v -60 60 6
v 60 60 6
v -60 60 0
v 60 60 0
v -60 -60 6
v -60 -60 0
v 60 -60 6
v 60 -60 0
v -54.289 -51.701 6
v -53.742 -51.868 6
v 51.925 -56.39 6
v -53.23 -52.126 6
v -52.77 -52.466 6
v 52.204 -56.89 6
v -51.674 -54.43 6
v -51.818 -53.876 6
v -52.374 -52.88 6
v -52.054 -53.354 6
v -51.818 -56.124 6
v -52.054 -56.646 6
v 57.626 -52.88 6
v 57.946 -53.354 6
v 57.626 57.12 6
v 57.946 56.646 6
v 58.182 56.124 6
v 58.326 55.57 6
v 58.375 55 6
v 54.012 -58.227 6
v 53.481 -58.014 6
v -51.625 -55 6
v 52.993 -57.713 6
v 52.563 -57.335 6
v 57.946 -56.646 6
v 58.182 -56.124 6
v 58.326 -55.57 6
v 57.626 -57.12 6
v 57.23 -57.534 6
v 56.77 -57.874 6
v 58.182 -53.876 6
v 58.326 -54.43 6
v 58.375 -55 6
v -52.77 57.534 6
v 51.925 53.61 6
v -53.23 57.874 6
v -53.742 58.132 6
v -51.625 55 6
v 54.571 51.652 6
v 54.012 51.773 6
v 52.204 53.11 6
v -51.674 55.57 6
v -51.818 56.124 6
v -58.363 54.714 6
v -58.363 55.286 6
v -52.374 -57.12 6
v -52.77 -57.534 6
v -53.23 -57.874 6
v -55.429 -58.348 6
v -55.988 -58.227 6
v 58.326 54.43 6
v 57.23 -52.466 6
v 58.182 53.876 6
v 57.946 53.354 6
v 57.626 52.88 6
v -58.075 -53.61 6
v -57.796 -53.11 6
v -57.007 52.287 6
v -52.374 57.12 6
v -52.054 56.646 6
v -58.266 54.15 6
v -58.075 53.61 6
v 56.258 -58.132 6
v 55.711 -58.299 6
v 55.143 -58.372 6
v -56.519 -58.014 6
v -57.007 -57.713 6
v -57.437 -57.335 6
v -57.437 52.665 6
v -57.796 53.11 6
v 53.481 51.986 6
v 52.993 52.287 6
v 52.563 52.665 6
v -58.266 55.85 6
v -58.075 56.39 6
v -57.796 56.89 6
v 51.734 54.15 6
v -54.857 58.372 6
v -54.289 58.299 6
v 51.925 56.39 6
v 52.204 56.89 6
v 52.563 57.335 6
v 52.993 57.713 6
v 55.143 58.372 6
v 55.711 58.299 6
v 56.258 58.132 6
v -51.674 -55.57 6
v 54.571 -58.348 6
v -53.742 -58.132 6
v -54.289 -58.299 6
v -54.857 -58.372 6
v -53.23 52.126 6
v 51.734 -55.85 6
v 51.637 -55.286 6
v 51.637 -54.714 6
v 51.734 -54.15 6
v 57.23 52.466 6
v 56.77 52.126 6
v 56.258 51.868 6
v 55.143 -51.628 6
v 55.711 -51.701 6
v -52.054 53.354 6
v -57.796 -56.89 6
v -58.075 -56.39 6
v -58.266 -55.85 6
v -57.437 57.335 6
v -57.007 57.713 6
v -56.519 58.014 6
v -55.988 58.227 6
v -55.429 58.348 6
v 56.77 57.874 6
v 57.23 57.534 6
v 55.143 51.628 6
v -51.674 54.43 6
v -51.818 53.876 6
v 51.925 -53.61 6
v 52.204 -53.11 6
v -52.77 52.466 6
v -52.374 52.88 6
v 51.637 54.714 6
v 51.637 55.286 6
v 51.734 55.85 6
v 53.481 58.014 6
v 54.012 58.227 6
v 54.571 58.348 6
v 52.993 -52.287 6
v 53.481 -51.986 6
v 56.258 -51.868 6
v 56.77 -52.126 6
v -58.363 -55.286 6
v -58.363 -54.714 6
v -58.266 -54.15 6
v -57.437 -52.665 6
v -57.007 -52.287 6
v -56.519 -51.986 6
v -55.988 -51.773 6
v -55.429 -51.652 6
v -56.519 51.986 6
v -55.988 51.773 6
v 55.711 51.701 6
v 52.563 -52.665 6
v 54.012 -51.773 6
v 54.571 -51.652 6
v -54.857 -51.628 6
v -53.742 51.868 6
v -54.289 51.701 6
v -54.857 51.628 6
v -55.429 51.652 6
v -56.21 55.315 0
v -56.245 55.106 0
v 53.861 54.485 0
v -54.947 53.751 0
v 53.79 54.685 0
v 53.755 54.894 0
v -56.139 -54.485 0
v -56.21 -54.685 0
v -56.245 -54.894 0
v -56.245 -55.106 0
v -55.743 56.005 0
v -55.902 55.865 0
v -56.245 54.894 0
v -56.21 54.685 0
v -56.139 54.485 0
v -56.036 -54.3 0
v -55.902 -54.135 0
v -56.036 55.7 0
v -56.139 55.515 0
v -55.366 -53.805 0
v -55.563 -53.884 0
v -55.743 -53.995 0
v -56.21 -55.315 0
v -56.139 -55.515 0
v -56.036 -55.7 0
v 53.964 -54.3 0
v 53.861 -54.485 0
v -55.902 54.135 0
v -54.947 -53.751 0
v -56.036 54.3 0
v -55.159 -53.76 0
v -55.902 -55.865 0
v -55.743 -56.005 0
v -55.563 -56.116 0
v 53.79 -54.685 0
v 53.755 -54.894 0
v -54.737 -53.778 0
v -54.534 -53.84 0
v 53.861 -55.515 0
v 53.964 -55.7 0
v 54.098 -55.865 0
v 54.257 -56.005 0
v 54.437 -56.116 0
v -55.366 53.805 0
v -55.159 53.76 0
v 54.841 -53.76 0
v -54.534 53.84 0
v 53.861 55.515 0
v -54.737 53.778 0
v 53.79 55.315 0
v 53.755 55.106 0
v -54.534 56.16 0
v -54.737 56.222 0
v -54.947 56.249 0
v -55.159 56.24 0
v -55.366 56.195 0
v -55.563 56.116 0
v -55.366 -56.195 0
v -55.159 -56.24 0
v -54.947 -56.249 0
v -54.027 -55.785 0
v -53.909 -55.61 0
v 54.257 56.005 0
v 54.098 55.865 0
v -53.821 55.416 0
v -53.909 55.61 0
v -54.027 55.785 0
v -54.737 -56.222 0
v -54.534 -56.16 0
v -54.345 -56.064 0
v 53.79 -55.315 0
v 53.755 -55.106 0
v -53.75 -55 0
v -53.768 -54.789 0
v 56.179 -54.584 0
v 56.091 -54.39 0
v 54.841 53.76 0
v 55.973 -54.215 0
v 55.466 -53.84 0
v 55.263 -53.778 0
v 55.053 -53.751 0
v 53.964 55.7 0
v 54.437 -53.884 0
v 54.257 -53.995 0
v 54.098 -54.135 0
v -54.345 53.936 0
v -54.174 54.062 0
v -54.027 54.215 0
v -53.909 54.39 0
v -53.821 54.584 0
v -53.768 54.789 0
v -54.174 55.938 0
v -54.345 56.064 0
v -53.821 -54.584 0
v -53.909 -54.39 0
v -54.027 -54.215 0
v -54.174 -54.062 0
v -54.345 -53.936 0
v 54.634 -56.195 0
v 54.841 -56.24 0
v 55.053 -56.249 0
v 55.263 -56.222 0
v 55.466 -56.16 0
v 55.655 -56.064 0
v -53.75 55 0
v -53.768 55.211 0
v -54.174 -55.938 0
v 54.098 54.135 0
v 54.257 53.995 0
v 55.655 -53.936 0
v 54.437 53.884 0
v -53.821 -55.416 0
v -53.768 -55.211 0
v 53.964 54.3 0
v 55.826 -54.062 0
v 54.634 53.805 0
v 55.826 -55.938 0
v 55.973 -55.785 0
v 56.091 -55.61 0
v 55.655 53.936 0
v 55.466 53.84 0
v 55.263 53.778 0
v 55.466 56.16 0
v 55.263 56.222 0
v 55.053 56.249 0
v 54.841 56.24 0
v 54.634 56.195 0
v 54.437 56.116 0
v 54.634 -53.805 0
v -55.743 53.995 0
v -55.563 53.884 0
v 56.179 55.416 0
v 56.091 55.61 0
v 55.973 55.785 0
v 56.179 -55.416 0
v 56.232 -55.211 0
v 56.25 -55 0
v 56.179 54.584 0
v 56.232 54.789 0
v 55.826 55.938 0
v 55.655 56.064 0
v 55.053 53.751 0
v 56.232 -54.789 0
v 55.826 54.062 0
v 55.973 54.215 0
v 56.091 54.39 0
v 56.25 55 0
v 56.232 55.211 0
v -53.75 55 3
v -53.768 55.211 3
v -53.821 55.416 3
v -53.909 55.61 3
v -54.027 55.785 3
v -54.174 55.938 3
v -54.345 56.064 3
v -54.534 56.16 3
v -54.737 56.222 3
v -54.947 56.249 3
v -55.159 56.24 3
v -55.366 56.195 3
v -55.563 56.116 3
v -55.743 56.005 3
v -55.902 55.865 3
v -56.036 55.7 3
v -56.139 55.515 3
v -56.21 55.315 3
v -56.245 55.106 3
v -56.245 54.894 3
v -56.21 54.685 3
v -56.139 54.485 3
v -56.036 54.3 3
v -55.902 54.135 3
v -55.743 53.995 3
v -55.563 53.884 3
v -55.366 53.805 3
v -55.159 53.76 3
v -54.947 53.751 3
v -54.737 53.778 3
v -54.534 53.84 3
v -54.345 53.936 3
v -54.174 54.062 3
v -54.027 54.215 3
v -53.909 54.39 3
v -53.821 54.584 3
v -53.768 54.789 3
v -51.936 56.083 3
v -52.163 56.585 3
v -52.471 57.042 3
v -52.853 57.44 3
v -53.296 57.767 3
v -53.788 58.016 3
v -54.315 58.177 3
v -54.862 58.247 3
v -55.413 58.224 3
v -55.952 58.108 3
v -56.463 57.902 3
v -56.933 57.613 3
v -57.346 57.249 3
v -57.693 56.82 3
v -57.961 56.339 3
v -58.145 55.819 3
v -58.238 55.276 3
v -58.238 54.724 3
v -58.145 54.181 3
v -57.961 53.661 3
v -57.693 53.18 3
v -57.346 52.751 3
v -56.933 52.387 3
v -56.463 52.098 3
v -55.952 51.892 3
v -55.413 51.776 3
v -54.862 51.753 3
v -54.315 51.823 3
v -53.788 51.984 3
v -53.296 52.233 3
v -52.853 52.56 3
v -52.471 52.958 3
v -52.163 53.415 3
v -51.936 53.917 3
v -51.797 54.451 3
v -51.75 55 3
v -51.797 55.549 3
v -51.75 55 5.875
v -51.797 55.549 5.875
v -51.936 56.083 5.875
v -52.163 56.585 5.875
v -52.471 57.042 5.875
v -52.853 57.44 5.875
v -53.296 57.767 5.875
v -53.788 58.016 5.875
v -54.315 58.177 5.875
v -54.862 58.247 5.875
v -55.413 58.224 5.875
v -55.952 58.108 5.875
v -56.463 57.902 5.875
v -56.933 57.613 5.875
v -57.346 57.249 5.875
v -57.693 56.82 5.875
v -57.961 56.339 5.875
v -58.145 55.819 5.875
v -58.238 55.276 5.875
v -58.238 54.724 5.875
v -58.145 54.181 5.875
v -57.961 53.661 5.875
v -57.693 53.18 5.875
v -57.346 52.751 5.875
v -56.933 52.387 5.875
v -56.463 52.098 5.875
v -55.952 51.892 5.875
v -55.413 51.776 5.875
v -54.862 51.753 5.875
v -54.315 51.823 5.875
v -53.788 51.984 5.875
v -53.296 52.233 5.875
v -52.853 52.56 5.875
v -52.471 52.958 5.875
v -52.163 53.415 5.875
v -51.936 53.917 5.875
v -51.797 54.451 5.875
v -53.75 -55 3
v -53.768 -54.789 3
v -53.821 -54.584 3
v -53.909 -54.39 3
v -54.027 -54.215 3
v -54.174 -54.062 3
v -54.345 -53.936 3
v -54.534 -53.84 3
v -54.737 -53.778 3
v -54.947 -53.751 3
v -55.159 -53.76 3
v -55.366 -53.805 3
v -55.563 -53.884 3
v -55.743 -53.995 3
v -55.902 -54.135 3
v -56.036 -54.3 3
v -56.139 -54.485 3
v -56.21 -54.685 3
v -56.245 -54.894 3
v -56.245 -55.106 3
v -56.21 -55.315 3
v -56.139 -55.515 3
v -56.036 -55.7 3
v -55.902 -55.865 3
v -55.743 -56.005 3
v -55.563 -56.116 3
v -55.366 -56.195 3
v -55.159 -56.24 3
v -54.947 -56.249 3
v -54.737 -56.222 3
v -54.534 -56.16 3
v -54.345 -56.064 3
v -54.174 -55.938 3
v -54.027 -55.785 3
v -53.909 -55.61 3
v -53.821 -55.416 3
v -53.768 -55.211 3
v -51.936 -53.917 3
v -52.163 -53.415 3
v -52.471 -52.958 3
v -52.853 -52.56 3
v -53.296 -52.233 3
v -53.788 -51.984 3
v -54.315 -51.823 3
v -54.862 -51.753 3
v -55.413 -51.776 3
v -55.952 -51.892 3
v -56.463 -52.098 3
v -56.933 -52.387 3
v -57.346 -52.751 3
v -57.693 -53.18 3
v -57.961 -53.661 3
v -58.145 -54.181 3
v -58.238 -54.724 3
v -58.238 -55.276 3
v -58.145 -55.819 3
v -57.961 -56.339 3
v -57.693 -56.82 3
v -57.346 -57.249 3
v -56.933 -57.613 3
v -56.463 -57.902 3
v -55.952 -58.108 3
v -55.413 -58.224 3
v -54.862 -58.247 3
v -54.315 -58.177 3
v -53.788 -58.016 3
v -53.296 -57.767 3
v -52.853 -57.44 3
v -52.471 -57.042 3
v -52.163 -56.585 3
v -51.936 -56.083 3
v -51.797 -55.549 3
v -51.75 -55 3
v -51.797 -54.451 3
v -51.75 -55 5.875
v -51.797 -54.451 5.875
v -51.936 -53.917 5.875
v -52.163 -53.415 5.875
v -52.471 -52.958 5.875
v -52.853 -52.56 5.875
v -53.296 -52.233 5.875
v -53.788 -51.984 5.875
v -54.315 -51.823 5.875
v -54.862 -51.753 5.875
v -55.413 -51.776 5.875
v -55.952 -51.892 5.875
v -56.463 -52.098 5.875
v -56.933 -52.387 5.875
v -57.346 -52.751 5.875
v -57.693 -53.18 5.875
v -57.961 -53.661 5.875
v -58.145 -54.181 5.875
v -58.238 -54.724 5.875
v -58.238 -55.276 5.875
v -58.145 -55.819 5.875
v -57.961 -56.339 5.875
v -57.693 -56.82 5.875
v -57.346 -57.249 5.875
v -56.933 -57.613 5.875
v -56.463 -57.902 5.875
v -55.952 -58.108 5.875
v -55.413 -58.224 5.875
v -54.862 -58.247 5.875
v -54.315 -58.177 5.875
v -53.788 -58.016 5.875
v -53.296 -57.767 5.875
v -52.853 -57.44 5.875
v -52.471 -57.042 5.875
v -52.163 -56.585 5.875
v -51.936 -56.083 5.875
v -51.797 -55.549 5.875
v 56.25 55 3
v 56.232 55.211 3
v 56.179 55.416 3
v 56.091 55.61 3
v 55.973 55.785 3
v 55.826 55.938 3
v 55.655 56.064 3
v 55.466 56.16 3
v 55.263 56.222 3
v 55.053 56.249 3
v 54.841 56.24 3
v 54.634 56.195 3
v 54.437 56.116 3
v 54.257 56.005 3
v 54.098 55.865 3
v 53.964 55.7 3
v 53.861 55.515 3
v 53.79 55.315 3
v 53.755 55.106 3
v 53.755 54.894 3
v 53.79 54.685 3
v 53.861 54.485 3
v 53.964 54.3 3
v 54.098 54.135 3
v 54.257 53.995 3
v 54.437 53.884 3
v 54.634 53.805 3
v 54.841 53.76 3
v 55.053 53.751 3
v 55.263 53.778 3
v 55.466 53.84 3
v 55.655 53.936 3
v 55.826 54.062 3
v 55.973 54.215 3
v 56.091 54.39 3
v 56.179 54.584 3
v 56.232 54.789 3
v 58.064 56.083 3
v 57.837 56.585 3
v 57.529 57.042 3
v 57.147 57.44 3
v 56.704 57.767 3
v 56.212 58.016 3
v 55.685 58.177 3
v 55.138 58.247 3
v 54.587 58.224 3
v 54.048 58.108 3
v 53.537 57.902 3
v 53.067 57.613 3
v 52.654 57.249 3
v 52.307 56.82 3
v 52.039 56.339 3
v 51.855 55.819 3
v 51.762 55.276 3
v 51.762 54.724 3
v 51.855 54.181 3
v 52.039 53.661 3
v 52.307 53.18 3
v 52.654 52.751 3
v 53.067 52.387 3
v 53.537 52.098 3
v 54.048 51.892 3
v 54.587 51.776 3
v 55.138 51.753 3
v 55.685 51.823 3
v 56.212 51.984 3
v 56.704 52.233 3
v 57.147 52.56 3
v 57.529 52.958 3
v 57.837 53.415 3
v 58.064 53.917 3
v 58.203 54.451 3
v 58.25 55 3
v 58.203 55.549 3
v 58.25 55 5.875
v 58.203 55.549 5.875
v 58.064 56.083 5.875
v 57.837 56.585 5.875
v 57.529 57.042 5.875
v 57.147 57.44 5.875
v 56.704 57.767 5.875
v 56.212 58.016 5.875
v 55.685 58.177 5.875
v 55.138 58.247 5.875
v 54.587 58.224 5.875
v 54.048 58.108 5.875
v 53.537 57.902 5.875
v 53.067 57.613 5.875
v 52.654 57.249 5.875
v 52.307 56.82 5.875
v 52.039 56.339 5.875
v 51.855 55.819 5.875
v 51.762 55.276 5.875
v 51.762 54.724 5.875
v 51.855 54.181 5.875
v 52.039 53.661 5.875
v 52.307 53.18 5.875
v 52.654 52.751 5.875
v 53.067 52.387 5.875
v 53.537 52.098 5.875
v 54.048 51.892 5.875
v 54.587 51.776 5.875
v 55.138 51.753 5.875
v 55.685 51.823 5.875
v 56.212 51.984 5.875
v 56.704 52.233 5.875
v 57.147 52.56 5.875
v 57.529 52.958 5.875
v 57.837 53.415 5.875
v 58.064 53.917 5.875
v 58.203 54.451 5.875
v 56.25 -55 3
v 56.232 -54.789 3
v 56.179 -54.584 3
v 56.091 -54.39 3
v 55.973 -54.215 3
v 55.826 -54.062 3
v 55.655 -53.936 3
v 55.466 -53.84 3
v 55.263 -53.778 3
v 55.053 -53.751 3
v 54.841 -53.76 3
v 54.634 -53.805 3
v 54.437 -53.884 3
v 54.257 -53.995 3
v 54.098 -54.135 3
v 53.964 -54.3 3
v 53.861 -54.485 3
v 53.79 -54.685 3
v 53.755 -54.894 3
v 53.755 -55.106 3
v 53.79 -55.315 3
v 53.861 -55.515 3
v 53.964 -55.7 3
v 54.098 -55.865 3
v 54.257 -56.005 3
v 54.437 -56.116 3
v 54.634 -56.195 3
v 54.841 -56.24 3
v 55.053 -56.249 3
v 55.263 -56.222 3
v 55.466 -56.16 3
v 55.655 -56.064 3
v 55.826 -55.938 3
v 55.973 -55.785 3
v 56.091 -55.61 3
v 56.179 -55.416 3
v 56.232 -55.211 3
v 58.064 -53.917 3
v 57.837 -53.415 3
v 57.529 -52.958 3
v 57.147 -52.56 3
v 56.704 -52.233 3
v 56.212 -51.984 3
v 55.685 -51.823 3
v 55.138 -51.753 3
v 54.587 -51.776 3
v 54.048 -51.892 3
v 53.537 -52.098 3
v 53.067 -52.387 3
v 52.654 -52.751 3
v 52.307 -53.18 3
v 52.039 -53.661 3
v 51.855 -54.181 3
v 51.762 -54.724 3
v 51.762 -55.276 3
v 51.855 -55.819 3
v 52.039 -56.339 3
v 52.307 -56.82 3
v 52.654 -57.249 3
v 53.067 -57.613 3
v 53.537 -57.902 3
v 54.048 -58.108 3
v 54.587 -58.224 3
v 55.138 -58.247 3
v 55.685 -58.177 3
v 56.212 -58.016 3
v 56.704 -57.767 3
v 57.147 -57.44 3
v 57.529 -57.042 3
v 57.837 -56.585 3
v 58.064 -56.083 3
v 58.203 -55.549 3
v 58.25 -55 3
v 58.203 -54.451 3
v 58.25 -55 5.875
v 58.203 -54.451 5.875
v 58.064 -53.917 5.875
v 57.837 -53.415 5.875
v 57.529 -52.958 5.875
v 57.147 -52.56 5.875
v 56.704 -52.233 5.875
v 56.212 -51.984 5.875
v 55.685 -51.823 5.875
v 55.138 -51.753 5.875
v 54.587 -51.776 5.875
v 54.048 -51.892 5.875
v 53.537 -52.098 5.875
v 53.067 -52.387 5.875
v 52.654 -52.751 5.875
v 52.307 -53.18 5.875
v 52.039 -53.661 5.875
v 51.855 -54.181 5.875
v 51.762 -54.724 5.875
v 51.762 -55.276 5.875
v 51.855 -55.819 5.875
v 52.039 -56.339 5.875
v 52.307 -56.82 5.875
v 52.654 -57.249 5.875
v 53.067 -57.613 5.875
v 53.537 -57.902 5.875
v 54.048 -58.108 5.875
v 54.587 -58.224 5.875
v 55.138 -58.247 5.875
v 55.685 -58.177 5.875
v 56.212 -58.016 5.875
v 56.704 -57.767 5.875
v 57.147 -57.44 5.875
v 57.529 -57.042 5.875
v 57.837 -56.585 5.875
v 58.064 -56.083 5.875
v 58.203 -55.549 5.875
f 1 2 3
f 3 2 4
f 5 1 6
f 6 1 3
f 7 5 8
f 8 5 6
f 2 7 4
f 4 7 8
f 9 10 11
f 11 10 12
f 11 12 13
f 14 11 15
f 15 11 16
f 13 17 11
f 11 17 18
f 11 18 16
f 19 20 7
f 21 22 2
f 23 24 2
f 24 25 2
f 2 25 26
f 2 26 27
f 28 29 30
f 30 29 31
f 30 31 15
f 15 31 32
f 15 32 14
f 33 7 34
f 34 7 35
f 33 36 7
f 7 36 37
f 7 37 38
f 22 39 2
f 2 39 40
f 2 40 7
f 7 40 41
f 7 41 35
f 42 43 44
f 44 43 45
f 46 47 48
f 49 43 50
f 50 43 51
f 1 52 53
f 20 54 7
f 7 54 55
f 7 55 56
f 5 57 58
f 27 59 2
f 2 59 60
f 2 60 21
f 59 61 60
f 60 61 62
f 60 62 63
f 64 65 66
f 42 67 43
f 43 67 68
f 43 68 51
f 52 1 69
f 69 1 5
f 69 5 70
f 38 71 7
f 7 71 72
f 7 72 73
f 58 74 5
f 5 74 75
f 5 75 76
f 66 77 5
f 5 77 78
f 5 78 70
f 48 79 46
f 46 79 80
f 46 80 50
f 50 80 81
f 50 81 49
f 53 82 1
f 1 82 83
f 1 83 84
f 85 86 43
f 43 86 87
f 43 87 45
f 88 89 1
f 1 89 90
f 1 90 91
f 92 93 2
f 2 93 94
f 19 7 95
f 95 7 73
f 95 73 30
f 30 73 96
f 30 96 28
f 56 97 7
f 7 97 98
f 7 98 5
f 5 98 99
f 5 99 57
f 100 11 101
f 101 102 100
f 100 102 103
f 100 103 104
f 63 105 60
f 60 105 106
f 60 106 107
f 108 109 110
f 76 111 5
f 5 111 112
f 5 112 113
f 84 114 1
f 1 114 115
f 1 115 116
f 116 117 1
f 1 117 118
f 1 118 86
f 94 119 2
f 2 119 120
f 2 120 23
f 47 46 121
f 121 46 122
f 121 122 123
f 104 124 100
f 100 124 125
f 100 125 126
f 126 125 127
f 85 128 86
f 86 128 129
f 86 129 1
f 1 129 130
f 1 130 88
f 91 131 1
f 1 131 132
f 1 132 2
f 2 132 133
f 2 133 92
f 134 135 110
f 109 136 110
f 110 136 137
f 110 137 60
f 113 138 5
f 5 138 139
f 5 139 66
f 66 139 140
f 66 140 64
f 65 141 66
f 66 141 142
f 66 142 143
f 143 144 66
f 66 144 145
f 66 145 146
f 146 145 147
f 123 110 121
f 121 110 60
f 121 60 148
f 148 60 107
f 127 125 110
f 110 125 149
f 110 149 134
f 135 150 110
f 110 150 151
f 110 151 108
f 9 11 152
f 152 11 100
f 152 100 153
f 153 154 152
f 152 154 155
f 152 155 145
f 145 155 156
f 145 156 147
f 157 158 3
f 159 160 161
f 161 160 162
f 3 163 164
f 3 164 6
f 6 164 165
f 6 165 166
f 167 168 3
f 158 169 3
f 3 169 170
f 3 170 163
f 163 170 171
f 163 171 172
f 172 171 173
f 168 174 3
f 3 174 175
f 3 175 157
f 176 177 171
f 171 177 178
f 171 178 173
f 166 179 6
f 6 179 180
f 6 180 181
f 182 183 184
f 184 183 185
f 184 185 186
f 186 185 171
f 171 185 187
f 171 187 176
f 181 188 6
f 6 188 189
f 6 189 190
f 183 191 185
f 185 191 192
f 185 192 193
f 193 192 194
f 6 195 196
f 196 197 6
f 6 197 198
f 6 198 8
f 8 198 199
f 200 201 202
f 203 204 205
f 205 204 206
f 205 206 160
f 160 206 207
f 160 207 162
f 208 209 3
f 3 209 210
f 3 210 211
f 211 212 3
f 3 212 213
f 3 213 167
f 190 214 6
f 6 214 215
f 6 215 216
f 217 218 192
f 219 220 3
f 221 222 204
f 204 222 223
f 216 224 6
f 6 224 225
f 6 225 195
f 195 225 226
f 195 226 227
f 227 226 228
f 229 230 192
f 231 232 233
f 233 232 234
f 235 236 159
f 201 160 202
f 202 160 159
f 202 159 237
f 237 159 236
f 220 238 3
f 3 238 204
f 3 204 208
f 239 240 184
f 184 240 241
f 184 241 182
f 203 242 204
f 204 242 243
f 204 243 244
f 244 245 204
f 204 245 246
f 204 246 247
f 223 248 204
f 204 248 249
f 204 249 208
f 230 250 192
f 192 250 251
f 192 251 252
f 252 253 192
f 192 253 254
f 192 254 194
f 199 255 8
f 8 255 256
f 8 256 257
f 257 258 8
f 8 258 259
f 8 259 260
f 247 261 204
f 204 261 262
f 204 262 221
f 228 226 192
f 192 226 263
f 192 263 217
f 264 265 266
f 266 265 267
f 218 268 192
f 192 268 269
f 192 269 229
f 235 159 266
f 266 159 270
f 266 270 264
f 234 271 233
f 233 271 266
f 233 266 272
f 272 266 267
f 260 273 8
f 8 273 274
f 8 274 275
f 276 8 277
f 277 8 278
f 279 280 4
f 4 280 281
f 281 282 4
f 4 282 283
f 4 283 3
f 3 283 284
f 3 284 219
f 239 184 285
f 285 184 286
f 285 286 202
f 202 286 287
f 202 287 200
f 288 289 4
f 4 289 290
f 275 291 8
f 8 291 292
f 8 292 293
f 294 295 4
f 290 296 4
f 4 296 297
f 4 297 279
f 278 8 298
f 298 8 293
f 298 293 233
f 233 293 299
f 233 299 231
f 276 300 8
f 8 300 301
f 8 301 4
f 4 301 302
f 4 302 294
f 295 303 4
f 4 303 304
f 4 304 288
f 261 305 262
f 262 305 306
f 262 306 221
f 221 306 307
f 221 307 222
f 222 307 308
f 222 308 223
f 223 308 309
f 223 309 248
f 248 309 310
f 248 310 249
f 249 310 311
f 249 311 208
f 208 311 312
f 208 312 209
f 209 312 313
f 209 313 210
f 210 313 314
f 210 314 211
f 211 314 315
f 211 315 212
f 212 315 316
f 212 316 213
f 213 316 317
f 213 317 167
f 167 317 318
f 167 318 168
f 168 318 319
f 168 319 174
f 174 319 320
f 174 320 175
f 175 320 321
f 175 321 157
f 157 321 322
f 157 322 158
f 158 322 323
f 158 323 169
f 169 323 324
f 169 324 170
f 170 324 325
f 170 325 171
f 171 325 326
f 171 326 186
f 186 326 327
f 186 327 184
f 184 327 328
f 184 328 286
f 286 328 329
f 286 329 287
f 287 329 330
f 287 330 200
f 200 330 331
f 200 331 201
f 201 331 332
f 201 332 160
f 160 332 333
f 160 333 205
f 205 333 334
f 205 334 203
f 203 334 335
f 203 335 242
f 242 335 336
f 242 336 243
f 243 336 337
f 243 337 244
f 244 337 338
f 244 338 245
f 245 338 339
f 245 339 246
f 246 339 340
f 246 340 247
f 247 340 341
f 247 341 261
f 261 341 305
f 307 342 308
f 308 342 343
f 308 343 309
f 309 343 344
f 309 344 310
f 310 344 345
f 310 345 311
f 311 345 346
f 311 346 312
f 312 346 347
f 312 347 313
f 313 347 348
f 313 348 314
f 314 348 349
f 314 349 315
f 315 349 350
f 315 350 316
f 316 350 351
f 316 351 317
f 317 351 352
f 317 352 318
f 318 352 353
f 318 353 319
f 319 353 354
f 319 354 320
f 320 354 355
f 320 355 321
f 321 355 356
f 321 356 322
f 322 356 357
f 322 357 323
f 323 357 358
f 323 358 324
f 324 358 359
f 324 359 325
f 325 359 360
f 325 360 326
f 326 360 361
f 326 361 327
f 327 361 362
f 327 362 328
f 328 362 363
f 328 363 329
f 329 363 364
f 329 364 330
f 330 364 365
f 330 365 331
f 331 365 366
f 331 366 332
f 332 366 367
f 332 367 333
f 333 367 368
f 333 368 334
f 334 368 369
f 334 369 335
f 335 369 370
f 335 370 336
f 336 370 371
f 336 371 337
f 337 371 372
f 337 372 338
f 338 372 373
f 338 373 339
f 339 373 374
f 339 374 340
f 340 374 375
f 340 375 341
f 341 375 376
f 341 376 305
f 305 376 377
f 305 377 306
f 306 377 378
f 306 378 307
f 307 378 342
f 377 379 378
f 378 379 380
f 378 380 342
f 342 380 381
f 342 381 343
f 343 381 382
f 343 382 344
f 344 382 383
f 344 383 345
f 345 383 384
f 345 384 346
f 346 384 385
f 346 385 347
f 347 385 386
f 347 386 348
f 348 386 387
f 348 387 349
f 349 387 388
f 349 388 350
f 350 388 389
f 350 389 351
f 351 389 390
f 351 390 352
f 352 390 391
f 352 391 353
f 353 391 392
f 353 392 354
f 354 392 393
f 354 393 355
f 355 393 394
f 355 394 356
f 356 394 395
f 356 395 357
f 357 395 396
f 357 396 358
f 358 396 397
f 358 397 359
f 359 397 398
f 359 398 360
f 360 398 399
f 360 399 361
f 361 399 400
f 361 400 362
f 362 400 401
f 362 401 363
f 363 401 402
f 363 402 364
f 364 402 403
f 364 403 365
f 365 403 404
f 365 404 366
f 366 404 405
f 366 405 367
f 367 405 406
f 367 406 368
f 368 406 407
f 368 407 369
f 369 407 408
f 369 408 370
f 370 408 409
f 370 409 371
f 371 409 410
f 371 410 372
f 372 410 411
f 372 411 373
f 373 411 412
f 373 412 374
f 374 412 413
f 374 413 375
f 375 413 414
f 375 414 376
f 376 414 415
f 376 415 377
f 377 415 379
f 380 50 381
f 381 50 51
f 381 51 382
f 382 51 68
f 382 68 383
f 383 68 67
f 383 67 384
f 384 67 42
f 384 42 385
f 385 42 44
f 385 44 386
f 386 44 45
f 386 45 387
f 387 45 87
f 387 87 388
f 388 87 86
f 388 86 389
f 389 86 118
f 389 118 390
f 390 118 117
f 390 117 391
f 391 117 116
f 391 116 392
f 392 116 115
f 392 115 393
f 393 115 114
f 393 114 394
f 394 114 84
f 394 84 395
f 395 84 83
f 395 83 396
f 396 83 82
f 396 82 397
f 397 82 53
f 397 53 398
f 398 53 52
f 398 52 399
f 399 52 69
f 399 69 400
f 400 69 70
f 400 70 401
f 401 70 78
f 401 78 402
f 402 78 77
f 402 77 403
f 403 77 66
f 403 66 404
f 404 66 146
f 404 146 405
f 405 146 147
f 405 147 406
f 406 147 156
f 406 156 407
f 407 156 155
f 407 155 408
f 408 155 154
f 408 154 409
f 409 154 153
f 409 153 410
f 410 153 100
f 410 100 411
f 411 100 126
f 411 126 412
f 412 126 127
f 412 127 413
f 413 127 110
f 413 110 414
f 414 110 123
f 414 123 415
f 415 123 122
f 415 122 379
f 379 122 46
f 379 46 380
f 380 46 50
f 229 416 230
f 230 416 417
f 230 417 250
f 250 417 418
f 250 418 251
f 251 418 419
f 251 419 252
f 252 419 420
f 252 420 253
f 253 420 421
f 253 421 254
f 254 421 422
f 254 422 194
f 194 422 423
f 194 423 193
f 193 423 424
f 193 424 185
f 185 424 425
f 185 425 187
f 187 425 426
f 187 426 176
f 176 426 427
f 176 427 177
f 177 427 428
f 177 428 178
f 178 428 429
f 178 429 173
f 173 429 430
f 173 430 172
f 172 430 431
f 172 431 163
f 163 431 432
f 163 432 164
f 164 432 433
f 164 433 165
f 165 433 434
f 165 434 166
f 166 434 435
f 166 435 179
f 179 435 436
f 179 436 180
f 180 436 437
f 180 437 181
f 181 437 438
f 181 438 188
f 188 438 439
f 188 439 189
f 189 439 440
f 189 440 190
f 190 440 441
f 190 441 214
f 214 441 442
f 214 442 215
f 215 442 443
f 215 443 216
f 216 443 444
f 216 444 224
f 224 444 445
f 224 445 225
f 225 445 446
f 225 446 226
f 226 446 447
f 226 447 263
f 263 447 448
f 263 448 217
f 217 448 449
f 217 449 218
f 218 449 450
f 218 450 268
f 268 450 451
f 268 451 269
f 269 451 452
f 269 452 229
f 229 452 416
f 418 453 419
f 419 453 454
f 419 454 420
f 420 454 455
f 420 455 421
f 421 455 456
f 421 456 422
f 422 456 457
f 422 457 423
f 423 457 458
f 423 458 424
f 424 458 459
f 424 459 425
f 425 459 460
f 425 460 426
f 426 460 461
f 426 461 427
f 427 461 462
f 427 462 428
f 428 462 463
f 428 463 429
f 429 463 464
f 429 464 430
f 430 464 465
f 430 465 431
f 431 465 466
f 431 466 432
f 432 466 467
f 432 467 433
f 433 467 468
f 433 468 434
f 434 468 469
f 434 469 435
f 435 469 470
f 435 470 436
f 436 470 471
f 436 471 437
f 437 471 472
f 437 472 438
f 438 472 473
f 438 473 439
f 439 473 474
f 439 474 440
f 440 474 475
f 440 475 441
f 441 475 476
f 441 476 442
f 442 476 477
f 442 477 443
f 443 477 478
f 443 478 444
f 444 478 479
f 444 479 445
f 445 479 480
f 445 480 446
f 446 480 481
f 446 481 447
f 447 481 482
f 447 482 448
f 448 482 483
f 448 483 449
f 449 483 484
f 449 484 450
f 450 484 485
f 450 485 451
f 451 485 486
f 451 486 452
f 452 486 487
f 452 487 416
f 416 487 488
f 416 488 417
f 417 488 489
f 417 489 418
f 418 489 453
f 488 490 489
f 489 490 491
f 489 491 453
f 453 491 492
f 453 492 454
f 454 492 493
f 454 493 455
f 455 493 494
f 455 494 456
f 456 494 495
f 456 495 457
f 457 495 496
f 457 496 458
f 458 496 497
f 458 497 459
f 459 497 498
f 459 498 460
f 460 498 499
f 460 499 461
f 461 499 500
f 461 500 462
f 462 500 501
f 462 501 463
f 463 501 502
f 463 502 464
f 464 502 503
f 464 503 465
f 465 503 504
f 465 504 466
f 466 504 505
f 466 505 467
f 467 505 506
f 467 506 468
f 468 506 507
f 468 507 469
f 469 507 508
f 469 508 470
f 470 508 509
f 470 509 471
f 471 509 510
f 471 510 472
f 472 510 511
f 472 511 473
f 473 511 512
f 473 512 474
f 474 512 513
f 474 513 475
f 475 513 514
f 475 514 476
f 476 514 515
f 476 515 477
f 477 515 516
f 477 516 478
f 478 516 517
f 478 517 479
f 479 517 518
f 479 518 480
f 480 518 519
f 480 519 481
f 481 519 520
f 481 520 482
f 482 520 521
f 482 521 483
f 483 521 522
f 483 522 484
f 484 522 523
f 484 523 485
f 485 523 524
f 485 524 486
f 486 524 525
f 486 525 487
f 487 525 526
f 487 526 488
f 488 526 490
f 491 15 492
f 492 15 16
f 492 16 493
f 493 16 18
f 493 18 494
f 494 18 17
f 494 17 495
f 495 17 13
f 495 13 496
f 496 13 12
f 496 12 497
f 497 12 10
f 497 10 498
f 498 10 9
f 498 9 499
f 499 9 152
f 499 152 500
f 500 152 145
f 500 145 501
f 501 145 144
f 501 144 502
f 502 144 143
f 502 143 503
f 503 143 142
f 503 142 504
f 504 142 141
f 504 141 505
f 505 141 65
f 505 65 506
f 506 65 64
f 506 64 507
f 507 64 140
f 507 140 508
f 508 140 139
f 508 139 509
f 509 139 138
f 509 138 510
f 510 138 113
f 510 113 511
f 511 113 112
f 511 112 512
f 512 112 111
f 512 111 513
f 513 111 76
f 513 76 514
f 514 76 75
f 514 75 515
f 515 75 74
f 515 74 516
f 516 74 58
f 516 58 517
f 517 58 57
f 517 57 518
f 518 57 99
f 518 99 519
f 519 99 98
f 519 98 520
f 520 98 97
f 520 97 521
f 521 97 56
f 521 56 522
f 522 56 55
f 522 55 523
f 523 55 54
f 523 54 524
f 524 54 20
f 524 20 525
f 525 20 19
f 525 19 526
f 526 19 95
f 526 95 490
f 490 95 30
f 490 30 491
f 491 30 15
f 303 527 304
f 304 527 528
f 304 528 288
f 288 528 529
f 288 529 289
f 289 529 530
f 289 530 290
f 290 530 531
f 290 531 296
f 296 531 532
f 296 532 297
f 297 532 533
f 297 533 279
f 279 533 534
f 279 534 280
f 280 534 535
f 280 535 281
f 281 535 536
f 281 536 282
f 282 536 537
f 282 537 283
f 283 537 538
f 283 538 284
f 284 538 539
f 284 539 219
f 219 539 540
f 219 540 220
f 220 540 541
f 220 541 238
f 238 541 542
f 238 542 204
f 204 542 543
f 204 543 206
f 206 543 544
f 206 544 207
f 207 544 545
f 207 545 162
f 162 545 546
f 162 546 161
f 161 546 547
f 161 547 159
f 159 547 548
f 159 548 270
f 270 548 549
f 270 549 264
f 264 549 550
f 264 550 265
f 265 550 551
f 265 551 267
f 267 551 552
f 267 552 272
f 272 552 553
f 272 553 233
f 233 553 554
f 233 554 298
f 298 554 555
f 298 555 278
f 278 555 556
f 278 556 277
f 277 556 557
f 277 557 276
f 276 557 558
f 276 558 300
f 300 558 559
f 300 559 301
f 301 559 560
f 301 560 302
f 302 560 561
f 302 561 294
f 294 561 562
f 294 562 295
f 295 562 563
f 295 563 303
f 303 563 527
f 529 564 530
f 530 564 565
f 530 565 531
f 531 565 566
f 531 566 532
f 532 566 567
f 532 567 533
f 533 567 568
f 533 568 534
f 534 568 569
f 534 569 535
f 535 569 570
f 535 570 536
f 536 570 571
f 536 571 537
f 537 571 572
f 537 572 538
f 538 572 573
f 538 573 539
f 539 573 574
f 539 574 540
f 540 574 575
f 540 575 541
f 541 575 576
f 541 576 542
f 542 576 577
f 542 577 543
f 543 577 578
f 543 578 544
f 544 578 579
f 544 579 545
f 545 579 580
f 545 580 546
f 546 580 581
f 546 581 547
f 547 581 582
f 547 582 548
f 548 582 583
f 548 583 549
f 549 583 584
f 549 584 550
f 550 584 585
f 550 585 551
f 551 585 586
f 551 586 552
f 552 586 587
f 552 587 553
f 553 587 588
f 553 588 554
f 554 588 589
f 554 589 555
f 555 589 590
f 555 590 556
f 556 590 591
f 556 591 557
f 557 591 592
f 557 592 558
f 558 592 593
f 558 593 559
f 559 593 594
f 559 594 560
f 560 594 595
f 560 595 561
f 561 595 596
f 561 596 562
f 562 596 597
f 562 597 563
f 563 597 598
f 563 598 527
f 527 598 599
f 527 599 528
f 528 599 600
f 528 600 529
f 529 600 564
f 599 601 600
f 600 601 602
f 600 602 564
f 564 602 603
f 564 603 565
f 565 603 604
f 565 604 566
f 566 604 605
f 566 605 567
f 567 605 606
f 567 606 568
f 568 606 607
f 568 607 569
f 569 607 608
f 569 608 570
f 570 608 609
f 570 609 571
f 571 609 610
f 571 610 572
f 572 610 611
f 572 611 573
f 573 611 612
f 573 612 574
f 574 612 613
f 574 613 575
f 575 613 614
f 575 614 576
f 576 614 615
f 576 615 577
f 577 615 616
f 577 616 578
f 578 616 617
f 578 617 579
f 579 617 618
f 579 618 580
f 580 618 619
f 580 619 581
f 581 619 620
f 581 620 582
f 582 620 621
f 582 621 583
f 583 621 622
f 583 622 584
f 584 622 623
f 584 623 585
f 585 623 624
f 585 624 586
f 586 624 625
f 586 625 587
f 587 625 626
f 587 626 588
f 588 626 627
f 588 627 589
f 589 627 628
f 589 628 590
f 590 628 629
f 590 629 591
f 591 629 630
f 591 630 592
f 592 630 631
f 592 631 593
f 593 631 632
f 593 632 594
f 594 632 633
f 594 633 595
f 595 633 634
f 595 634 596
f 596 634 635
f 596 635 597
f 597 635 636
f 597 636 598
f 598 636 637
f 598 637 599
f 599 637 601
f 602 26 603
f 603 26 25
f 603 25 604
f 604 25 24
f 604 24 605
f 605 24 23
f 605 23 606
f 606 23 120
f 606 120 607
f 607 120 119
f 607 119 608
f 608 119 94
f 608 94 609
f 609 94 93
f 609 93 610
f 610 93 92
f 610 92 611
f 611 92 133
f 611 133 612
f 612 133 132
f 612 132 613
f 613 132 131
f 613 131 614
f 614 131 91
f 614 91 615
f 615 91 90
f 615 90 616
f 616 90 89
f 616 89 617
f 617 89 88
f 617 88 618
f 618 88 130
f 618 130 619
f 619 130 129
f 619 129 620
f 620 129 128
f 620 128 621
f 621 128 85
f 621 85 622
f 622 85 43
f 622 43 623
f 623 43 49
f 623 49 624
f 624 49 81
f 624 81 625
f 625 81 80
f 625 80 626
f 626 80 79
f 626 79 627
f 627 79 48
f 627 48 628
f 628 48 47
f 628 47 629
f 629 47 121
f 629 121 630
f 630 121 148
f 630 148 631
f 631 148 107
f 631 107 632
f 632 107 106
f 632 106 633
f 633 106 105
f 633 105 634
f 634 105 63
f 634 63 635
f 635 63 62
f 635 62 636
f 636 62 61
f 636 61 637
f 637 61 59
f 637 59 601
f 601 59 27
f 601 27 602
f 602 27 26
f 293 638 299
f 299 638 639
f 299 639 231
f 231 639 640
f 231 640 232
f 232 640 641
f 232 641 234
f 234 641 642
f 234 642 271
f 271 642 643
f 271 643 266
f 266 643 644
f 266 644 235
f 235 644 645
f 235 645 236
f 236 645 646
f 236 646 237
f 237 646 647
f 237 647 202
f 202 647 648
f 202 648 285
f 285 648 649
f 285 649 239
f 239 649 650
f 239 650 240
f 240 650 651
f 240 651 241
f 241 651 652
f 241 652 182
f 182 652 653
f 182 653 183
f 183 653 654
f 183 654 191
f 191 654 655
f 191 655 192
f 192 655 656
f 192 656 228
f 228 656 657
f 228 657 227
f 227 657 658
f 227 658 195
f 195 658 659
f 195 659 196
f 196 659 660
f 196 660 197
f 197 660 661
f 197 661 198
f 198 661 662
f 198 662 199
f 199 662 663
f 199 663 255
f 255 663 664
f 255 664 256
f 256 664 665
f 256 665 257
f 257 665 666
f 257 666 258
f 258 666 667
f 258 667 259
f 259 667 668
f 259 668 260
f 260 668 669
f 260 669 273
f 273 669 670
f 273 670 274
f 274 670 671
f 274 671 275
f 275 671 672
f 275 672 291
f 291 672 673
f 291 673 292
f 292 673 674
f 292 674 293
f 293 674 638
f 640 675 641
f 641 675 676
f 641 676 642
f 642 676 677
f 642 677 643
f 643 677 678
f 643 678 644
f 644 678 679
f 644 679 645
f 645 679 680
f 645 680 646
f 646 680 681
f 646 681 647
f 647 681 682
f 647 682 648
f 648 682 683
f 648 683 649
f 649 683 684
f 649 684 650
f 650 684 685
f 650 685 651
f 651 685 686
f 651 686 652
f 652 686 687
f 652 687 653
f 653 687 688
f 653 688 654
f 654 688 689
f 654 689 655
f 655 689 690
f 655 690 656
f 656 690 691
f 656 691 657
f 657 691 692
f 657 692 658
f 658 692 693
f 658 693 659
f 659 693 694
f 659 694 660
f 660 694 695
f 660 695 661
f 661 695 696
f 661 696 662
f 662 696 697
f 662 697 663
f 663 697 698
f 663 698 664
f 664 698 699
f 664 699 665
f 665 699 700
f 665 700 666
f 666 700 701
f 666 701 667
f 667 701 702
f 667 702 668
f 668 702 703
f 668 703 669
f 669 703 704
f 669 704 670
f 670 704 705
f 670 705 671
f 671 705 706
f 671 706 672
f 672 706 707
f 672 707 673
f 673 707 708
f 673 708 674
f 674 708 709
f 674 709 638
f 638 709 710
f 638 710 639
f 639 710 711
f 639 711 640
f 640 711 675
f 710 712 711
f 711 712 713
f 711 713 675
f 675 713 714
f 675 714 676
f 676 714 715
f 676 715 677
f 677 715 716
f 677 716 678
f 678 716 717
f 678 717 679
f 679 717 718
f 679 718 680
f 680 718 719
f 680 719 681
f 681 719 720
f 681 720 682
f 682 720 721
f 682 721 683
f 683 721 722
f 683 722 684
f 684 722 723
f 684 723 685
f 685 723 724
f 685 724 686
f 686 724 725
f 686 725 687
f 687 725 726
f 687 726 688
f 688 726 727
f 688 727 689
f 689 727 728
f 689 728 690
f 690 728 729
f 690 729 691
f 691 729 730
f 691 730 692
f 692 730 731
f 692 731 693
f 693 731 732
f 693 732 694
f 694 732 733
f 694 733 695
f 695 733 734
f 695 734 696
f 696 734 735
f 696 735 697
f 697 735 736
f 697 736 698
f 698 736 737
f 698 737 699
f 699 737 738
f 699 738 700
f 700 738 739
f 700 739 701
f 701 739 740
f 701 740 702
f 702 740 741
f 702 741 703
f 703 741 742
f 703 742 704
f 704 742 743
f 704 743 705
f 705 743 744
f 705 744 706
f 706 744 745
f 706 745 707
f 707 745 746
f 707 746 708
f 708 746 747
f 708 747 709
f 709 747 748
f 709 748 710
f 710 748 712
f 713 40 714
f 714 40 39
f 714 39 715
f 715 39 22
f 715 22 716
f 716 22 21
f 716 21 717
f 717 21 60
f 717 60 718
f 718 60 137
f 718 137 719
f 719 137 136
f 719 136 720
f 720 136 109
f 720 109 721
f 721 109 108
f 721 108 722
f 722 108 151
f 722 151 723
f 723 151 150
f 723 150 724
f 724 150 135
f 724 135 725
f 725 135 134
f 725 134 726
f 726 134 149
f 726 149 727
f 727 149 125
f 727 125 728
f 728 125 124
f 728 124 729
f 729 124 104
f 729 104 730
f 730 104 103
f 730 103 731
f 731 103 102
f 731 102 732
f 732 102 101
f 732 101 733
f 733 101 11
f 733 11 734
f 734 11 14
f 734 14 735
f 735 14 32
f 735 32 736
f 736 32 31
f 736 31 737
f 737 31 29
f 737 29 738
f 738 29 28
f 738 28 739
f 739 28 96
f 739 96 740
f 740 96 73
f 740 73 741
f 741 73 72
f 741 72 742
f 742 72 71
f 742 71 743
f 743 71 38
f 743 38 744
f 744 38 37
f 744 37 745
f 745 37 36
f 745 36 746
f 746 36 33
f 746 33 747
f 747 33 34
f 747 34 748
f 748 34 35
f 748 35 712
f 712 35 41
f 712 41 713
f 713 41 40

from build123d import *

# Parameters (mm, degrees)
SKETCH1_W           = 120
SKETCH1_H           = 120
BOSS_EXTRUDE1_DEPTH = 6


with BuildPart() as part:
    # Sketch1 → Boss-Extrude1 (new body)
    with BuildSketch(Plane(origin=(0, 0, 0), x_dir=(0, 1, 0), z_dir=(0, 0, 1))):
        Rectangle(SKETCH1_W, SKETCH1_H)
    extrude(amount=BOSS_EXTRUDE1_DEPTH)

    # Sketch7 → CBORE for M3 SBHCS1 (revolve, cut)
    with BuildSketch(Plane(origin=(-55, 55, 6), x_dir=(0, -1, 0), z_dir=(1, 0, 0))):
        Polygon((0, 0), (0, 6), (1.25, 6), (1.25, 3), (3.25, 3), (3.25, 0.125), (3.375, 0), align=None)
    cbore_for_m3_sbhcs1 = revolve(axis=Axis((-55, 55, 12.35), (0, 0, -1)), mode=Mode.SUBTRACT)

    # Mirror2: CBORE for M3 SBHCS1 across plane
    add(cbore_for_m3_sbhcs1.mirror(Plane(origin=(0, 0, 0), x_dir=(0, 0, 1), z_dir=(1, 0, 0))), mode=Mode.SUBTRACT)

    # Mirror2 at the second plane: CBORE for M3 SBHCS1 across plane
    add(cbore_for_m3_sbhcs1.mirror(Plane.ZX), mode=Mode.SUBTRACT)

    # Mirror2 at the second plane copy 1 sketc → Mirror2 at the second plane copy 1 (revolve, cut)
    with BuildSketch(Plane(origin=(55, -55, 6), x_dir=(0, 1, 0), z_dir=(-1, 0, 0))):
        Polygon((0, 0), (0, 6), (1.25, 6), (1.25, 3), (3.25, 3), (3.25, 0.125), (3.375, 0), align=None)
    revolve(axis=Axis((55, -55, 12.35), (0, 0, -1)), mode=Mode.SUBTRACT)


solid = part.part
